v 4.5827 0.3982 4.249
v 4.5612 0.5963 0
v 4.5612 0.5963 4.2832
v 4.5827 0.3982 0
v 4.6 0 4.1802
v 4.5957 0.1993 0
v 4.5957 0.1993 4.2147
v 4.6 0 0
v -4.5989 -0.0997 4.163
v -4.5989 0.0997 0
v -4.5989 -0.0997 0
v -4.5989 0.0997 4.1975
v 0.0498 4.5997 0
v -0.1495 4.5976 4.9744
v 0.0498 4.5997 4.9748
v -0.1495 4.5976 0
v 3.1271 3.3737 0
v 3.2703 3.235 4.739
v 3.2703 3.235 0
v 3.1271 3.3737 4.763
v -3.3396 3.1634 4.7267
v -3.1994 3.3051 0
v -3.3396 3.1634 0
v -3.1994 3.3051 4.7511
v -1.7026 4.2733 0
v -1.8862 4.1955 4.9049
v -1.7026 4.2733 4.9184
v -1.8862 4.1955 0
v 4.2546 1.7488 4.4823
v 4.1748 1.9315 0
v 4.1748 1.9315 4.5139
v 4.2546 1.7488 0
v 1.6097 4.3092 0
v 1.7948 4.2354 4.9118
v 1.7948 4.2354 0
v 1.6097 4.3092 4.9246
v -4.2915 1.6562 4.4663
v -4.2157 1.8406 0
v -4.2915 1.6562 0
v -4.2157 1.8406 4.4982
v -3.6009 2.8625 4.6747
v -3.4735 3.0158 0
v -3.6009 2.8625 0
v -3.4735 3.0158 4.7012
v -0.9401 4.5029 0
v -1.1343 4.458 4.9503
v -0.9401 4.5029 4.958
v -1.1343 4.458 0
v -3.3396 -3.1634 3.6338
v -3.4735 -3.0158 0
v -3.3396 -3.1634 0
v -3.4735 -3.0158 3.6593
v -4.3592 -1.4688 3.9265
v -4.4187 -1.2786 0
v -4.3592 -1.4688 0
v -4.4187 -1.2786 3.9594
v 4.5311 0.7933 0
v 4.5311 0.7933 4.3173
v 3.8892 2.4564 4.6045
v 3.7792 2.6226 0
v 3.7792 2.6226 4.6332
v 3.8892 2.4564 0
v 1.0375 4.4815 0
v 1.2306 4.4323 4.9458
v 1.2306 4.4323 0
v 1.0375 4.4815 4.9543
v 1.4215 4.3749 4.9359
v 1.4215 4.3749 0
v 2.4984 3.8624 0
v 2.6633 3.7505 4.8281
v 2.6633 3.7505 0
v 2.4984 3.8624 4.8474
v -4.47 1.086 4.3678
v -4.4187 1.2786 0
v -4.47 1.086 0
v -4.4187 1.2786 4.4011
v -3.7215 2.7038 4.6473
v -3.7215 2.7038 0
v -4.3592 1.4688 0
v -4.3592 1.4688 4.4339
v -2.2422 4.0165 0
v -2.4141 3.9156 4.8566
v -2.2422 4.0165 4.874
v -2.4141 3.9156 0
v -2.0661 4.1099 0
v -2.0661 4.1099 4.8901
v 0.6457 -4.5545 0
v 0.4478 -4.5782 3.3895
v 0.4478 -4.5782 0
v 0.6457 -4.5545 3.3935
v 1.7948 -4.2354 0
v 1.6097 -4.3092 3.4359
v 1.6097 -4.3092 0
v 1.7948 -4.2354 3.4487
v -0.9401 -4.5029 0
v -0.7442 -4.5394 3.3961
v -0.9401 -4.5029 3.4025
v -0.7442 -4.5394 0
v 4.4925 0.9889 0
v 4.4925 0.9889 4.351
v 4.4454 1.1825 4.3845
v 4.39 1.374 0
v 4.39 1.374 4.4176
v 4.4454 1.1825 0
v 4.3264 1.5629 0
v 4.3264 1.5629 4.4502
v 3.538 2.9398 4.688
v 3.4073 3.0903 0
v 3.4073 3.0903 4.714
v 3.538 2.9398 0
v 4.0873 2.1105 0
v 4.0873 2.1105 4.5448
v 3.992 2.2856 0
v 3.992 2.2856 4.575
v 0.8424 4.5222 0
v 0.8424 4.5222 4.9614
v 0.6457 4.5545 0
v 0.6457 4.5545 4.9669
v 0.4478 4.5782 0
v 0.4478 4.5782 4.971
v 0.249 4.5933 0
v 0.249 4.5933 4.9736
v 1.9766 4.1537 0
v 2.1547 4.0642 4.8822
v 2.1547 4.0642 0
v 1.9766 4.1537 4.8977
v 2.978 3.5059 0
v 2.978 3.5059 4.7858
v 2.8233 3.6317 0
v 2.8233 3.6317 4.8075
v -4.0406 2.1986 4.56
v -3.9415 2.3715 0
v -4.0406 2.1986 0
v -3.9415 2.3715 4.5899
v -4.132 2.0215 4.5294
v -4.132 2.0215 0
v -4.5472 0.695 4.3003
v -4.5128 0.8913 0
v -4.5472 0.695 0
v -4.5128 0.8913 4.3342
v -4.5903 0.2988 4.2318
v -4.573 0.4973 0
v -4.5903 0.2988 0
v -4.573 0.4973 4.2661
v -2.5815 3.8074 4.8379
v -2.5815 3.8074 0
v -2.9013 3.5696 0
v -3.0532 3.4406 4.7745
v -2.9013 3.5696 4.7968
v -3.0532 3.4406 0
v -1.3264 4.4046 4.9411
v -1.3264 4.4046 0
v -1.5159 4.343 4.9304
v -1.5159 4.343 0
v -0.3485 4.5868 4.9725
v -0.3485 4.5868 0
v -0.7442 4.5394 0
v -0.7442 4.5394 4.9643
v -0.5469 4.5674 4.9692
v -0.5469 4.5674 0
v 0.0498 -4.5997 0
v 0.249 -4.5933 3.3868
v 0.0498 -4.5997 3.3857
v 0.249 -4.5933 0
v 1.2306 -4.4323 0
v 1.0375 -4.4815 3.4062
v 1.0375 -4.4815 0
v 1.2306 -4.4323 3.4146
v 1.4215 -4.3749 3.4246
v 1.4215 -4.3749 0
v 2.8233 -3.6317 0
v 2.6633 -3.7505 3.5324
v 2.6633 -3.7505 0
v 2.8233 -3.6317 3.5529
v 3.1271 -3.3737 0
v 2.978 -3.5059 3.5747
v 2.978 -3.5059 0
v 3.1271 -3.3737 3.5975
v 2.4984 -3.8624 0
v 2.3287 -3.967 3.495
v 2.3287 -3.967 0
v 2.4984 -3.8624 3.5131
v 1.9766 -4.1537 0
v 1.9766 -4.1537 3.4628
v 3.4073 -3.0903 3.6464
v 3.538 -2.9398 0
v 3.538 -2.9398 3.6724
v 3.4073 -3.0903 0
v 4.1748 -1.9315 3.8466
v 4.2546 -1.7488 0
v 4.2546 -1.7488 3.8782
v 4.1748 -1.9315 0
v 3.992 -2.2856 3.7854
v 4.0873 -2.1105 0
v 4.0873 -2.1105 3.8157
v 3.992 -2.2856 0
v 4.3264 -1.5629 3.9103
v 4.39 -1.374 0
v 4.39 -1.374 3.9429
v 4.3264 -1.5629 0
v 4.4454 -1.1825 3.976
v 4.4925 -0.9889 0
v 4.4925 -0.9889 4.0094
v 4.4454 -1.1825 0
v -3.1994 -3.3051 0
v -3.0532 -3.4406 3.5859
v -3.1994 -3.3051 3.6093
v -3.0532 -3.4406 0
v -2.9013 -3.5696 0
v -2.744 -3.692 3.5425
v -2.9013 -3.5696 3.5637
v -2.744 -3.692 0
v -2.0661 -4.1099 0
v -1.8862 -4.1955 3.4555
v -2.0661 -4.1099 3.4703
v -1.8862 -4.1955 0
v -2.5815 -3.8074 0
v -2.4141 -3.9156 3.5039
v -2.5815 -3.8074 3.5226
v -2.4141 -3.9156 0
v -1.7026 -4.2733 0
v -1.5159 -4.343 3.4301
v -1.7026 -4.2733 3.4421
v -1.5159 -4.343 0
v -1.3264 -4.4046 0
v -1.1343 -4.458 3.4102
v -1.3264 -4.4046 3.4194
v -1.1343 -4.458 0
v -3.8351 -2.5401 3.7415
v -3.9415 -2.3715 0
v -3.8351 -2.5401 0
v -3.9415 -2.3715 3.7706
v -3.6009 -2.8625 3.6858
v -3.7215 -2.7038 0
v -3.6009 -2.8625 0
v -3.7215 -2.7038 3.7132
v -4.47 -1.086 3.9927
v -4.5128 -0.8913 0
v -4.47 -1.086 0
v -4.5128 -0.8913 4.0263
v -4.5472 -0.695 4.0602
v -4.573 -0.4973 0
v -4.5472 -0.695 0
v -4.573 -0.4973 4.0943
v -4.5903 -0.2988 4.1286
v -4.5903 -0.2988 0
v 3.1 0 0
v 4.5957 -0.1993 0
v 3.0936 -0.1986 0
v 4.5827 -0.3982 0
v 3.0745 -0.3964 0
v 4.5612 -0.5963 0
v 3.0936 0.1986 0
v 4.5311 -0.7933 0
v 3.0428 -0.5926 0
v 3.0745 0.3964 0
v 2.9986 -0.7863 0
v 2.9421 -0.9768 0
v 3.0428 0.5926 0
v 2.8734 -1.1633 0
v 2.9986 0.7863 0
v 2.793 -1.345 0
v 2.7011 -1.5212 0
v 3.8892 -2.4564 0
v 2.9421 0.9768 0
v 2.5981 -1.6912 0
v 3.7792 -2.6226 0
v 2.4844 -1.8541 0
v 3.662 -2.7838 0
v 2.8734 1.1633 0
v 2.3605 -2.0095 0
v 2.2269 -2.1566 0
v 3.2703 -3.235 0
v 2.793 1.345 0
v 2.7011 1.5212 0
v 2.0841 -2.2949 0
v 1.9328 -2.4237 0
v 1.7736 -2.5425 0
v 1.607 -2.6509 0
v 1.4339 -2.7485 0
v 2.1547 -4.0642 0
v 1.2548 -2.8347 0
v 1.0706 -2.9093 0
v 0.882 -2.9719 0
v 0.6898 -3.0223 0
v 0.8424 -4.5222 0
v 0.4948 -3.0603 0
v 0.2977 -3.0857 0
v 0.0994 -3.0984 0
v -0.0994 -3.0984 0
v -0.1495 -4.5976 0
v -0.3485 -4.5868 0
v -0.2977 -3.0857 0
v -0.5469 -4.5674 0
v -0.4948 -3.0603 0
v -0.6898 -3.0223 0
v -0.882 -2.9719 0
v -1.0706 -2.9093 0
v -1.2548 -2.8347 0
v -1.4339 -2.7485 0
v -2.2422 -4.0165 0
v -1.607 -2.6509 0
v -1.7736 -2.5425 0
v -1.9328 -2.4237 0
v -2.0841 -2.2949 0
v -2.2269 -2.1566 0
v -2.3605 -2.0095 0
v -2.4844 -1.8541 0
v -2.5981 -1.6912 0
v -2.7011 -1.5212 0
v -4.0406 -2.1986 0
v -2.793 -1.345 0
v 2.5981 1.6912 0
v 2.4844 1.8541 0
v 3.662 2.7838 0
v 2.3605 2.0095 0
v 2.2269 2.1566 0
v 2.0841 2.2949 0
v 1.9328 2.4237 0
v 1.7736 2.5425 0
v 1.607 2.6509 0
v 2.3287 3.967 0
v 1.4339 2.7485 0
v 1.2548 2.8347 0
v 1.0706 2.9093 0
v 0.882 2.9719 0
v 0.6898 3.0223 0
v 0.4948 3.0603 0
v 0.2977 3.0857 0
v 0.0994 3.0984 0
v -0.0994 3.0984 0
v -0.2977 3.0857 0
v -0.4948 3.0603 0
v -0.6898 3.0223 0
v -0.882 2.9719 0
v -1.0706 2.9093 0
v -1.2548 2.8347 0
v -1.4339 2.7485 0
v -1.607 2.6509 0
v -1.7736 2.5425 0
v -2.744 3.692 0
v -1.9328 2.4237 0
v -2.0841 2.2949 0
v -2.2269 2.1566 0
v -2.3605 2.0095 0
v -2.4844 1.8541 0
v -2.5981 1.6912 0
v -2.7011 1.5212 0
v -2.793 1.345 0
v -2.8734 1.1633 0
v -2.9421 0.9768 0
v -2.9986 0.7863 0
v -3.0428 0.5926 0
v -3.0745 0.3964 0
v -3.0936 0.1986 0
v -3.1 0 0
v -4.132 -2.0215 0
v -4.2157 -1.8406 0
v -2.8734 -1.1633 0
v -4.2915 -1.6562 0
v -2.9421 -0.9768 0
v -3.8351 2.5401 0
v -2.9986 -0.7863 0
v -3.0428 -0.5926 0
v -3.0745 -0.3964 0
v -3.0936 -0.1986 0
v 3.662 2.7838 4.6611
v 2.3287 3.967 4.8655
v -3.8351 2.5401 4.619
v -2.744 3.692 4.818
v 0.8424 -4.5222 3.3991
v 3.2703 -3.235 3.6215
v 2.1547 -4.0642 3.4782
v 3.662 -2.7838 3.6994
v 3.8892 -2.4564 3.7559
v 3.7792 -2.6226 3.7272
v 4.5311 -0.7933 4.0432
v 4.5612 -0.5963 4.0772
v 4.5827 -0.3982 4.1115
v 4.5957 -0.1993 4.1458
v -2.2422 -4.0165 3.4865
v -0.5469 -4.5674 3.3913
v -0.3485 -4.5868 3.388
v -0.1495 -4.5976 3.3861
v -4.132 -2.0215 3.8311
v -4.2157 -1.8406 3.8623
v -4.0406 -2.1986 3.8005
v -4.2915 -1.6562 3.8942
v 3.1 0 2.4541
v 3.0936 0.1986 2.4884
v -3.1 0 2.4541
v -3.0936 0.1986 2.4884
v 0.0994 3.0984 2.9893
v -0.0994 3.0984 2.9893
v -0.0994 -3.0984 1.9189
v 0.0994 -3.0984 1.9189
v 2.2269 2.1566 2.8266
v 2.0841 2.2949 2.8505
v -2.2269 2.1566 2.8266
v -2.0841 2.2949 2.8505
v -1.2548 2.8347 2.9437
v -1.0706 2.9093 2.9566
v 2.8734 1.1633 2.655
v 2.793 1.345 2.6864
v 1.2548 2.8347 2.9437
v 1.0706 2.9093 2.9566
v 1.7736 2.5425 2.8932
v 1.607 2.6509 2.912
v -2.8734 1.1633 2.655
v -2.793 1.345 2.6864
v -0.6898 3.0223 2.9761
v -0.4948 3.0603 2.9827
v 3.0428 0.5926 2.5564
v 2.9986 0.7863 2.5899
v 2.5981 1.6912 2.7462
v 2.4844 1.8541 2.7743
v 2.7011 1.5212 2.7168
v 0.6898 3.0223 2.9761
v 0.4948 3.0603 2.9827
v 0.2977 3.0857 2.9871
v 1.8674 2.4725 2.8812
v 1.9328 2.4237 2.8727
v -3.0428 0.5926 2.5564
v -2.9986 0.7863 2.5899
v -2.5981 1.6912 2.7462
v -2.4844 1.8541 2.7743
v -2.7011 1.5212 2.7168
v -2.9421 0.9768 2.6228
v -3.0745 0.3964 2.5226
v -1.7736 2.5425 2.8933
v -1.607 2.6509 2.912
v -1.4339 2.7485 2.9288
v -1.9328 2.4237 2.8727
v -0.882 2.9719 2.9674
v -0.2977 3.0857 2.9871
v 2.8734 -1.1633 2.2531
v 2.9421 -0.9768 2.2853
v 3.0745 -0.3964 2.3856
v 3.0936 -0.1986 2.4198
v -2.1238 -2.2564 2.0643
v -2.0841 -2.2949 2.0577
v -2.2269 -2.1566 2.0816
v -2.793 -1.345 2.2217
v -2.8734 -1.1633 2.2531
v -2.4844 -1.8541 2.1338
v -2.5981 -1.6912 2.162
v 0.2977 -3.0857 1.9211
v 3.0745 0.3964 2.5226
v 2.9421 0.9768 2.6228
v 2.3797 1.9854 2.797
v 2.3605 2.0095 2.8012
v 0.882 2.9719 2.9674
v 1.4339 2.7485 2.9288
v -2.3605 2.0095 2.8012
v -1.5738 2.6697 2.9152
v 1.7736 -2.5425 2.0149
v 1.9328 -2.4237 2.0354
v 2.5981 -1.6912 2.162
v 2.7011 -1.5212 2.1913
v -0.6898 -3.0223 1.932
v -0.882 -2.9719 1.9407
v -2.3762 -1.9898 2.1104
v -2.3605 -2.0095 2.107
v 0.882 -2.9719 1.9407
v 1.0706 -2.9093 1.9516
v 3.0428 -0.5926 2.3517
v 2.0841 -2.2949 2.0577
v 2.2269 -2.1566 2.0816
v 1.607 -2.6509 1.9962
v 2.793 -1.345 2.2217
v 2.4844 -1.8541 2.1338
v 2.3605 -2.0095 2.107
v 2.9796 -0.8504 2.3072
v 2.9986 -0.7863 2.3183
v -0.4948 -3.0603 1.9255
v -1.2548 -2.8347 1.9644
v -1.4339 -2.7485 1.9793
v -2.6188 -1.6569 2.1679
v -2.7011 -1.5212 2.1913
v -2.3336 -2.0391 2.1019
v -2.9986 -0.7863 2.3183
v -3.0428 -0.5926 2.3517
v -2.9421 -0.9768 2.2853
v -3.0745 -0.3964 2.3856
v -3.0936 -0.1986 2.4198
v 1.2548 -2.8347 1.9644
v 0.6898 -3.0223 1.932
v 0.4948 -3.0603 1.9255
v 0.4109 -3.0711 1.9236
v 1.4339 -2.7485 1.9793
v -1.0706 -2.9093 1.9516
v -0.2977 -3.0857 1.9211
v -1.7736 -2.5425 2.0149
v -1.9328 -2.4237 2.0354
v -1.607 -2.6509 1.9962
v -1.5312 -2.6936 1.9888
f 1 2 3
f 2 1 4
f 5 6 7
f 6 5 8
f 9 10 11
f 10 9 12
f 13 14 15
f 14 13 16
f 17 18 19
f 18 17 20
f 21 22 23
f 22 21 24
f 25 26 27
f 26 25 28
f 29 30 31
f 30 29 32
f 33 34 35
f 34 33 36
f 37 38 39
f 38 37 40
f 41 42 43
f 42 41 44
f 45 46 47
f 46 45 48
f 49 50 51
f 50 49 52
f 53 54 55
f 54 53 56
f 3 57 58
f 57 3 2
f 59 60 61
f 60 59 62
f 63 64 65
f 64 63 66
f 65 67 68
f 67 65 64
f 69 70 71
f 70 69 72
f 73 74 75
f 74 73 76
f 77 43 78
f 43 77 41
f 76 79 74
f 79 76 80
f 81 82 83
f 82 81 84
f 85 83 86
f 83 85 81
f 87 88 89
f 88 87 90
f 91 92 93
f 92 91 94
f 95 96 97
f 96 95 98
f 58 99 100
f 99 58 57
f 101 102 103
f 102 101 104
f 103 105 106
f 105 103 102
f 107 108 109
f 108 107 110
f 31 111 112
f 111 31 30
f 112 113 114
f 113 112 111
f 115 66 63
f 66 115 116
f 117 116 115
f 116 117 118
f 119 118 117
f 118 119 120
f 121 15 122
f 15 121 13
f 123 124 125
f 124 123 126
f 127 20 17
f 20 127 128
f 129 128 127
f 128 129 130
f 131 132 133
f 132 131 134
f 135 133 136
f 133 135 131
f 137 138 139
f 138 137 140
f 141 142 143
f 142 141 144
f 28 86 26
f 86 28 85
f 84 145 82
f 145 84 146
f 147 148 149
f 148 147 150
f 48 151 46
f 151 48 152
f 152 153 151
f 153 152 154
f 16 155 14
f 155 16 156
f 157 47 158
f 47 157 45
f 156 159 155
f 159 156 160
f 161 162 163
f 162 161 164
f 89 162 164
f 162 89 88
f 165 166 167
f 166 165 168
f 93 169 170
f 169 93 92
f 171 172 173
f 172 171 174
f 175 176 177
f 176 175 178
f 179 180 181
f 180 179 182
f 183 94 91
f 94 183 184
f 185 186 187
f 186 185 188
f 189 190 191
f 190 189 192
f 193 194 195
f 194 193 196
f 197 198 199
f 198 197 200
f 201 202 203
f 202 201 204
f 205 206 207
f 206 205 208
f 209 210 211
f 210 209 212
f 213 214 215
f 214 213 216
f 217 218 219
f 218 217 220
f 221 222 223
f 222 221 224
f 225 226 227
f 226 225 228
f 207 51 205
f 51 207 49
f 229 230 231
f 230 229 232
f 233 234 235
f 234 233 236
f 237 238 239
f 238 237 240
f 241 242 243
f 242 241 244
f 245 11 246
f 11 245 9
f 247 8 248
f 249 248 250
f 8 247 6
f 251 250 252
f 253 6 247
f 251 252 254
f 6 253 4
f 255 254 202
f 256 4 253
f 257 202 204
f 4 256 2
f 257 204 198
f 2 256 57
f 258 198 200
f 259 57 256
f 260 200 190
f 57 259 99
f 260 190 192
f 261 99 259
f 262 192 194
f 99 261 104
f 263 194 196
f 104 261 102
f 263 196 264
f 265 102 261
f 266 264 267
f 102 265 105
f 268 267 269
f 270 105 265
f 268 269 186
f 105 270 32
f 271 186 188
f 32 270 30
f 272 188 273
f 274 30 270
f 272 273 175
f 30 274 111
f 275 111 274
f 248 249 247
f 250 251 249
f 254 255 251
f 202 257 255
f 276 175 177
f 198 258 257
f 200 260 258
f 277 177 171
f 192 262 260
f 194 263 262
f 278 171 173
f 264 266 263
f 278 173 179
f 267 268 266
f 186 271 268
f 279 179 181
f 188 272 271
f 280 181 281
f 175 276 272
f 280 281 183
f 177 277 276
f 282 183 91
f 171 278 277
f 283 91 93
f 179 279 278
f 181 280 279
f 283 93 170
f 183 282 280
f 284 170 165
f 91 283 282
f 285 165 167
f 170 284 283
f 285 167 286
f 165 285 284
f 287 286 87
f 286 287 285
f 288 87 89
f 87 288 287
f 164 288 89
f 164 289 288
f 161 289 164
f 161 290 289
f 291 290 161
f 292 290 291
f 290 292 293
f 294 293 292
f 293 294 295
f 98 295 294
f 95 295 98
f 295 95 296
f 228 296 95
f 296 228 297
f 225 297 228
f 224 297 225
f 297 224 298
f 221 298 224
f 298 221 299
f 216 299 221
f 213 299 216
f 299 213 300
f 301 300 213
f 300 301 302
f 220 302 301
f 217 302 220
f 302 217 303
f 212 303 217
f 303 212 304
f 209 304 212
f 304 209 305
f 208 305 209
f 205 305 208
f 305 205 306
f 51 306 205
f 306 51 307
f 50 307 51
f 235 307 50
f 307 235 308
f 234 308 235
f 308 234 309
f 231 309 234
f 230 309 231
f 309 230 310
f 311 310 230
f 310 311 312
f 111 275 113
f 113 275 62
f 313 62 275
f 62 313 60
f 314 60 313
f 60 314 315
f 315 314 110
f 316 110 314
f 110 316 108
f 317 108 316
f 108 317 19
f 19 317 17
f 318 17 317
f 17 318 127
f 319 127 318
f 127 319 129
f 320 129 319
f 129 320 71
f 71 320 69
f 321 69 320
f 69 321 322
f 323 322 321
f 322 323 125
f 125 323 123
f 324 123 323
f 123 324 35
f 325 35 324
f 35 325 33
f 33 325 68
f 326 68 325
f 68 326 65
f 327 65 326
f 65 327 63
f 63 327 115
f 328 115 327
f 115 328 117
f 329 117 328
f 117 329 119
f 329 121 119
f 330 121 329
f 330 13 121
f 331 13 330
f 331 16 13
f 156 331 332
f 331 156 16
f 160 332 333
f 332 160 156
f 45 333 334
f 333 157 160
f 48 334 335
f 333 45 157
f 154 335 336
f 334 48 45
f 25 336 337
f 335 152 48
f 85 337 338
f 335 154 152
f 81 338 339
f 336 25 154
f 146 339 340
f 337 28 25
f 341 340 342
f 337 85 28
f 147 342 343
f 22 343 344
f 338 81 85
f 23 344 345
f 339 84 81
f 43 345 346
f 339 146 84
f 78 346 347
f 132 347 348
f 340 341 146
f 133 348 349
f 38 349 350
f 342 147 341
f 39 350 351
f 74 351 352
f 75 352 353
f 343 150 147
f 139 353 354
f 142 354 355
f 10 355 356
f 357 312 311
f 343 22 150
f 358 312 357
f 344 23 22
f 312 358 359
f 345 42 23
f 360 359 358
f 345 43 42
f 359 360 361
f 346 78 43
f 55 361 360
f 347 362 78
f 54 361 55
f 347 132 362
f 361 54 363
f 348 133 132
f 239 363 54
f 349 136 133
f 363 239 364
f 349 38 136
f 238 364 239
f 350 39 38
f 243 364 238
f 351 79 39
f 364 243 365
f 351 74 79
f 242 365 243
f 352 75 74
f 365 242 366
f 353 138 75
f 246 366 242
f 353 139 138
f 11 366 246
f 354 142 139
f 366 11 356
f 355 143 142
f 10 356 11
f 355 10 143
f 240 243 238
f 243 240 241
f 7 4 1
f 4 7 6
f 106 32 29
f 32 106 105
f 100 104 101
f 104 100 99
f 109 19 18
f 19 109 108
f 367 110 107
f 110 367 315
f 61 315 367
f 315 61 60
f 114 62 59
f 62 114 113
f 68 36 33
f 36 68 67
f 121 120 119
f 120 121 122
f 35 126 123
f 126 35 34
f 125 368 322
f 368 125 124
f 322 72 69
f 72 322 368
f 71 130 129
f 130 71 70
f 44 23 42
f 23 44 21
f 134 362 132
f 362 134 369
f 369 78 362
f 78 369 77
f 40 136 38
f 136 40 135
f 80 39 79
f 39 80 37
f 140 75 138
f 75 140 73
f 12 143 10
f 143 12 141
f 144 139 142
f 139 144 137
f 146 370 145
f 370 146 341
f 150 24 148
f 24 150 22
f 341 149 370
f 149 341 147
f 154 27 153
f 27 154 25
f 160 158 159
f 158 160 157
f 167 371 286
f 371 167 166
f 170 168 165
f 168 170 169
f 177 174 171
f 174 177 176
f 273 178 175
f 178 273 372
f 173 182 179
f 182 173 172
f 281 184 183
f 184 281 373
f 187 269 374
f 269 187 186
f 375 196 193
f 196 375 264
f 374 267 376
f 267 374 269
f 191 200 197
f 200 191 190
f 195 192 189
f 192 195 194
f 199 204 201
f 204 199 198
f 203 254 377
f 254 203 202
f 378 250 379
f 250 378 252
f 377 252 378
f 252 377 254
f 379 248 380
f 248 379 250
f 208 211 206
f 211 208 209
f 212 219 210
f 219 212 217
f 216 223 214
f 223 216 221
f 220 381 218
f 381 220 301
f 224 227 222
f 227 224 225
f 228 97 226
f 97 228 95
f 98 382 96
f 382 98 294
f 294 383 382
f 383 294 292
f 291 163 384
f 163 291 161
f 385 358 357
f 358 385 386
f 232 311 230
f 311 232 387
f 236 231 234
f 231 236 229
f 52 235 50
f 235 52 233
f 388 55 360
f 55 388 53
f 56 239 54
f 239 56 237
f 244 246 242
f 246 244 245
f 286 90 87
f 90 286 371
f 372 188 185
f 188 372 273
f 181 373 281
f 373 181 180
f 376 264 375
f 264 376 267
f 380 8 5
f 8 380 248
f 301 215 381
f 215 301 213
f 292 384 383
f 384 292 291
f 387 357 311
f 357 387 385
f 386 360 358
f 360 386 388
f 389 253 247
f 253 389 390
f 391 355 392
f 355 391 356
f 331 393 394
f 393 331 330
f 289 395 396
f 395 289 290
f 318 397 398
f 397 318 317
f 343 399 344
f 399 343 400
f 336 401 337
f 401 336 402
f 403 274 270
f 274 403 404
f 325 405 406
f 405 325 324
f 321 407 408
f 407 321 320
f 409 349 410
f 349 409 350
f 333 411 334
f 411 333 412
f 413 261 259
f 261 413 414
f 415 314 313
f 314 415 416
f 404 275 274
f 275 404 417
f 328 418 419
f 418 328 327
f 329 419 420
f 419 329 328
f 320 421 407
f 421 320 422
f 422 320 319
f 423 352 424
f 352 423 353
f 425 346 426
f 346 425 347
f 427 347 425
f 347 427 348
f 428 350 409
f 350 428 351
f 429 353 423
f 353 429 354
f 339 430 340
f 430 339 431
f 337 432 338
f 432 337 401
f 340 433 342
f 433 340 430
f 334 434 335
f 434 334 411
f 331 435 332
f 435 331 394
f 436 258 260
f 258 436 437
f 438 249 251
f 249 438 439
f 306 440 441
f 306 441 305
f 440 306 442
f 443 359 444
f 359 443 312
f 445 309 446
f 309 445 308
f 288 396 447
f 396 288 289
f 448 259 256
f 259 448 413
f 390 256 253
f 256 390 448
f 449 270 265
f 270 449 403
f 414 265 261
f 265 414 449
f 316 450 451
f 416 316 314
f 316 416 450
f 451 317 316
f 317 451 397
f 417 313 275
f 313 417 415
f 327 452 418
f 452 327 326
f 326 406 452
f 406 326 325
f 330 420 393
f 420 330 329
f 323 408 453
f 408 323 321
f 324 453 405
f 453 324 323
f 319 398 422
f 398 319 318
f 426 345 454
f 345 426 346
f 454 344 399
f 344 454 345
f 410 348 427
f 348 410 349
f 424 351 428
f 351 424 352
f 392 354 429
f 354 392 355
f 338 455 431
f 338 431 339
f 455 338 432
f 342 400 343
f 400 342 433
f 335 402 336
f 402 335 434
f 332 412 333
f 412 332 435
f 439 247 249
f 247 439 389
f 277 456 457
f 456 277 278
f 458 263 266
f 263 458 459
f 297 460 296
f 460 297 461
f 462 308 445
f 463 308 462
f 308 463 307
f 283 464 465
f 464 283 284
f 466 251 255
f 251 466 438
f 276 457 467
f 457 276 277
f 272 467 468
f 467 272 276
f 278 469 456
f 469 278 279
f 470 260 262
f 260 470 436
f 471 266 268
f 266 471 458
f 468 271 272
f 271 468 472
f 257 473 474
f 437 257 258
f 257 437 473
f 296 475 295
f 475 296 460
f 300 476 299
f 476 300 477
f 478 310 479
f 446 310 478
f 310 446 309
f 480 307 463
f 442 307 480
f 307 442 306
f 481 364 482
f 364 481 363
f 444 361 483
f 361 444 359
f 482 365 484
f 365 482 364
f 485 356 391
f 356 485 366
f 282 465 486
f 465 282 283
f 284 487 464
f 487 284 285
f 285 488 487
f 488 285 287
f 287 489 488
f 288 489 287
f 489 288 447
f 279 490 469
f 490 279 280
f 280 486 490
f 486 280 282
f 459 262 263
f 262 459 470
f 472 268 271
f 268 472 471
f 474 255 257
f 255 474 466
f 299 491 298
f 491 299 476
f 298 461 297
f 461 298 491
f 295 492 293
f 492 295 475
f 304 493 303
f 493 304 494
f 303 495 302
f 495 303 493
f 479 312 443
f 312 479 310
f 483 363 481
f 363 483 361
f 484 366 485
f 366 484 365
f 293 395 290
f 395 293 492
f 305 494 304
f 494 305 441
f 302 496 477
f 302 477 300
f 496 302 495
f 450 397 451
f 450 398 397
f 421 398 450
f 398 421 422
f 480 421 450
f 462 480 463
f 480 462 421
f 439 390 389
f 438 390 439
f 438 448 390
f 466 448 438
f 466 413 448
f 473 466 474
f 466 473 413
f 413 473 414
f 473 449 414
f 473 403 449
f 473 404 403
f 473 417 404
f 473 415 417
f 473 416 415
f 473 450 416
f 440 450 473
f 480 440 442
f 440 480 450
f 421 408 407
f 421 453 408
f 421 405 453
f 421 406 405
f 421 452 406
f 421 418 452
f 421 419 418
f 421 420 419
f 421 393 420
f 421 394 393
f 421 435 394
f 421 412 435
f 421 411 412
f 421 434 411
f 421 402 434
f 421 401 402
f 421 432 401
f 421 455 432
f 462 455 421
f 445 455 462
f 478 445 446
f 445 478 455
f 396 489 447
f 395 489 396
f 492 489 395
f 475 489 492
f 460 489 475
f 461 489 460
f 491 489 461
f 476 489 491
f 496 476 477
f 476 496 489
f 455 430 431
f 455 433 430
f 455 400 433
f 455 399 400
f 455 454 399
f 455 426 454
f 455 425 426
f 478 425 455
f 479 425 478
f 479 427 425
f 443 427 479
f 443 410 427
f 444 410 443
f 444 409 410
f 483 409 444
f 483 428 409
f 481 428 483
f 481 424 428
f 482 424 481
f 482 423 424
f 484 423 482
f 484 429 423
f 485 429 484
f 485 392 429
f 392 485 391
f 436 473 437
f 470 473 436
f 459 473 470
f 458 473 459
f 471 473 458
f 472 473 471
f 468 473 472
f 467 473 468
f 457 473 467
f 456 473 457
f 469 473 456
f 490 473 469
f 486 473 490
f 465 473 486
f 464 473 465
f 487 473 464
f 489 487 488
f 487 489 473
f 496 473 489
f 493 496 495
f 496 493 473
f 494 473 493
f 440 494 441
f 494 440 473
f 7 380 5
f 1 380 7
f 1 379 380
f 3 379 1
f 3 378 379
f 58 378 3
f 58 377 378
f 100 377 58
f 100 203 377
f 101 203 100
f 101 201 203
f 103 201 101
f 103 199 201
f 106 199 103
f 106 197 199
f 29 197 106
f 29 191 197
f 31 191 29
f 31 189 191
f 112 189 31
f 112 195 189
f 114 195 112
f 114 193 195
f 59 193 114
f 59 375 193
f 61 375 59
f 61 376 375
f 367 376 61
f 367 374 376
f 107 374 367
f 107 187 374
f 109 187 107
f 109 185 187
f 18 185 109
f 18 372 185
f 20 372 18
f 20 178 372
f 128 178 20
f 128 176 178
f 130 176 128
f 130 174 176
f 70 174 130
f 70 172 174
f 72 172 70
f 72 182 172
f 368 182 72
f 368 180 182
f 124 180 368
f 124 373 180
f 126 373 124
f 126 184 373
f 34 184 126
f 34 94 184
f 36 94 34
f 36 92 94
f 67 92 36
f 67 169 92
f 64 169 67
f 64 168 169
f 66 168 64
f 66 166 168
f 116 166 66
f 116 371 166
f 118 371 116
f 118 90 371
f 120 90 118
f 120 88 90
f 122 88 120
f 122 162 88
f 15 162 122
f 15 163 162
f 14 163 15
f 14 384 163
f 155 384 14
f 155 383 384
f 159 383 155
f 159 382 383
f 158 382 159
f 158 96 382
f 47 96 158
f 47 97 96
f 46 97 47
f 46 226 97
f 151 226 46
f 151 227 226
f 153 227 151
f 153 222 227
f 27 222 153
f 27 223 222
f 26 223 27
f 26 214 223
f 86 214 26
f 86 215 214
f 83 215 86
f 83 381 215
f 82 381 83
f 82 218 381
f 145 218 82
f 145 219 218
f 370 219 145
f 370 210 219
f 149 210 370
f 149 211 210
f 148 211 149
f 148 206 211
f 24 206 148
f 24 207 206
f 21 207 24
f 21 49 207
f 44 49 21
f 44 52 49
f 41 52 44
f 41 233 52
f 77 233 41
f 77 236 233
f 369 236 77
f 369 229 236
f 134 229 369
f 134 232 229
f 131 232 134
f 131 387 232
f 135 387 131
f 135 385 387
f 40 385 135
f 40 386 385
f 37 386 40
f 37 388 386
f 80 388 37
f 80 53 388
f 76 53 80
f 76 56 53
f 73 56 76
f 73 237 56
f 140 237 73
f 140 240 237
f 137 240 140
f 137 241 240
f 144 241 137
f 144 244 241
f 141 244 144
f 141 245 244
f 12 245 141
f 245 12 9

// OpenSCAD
// Adapter to raise a Choc XE keyboard from the two columns in Atari XE
// computers and bring the keyboard to be flush with the case top.
// (c) Bertrand Le Roy
// Licensed under MIT

$fa = 1;
$fs = 0.2;

height_offset = 1.75;
column_diameter = 6.2;
keyboard_angle = 9.8; // degrees. back height: 43.45 front height: 24.21 hypothenuse: 112.22
wall_thickness = 1.5;
height = 5;

total_diameter = column_diameter + wall_thickness * 2;

    difference() {
        union() {
            translate([0, 0, height / 2])
                difference() {
                    cylinder(r = total_diameter / 2, h = height, center = true);
                    cylinder(r = column_diameter / 2, h = height + 1, center = true);
                }
            translate([0, 0, height - height_offset / 2 - total_diameter * sin(keyboard_angle) / 2])
                rotate([keyboard_angle, 0, 0])
                    cylinder(
                        r = (total_diameter + column_diameter) / 4,
                        h = height_offset,
                        center = true);
        }
        translate([
            0,
            - total_diameter * tan(keyboard_angle) / 2,
            height + 4.9 - total_diameter * sin(keyboard_angle) / 2])
            rotate([keyboard_angle, 0, 0])
                cube([
                    total_diameter / cos(keyboard_angle),
                    total_diameter + 0.5,
                    10], center = true);
    }
